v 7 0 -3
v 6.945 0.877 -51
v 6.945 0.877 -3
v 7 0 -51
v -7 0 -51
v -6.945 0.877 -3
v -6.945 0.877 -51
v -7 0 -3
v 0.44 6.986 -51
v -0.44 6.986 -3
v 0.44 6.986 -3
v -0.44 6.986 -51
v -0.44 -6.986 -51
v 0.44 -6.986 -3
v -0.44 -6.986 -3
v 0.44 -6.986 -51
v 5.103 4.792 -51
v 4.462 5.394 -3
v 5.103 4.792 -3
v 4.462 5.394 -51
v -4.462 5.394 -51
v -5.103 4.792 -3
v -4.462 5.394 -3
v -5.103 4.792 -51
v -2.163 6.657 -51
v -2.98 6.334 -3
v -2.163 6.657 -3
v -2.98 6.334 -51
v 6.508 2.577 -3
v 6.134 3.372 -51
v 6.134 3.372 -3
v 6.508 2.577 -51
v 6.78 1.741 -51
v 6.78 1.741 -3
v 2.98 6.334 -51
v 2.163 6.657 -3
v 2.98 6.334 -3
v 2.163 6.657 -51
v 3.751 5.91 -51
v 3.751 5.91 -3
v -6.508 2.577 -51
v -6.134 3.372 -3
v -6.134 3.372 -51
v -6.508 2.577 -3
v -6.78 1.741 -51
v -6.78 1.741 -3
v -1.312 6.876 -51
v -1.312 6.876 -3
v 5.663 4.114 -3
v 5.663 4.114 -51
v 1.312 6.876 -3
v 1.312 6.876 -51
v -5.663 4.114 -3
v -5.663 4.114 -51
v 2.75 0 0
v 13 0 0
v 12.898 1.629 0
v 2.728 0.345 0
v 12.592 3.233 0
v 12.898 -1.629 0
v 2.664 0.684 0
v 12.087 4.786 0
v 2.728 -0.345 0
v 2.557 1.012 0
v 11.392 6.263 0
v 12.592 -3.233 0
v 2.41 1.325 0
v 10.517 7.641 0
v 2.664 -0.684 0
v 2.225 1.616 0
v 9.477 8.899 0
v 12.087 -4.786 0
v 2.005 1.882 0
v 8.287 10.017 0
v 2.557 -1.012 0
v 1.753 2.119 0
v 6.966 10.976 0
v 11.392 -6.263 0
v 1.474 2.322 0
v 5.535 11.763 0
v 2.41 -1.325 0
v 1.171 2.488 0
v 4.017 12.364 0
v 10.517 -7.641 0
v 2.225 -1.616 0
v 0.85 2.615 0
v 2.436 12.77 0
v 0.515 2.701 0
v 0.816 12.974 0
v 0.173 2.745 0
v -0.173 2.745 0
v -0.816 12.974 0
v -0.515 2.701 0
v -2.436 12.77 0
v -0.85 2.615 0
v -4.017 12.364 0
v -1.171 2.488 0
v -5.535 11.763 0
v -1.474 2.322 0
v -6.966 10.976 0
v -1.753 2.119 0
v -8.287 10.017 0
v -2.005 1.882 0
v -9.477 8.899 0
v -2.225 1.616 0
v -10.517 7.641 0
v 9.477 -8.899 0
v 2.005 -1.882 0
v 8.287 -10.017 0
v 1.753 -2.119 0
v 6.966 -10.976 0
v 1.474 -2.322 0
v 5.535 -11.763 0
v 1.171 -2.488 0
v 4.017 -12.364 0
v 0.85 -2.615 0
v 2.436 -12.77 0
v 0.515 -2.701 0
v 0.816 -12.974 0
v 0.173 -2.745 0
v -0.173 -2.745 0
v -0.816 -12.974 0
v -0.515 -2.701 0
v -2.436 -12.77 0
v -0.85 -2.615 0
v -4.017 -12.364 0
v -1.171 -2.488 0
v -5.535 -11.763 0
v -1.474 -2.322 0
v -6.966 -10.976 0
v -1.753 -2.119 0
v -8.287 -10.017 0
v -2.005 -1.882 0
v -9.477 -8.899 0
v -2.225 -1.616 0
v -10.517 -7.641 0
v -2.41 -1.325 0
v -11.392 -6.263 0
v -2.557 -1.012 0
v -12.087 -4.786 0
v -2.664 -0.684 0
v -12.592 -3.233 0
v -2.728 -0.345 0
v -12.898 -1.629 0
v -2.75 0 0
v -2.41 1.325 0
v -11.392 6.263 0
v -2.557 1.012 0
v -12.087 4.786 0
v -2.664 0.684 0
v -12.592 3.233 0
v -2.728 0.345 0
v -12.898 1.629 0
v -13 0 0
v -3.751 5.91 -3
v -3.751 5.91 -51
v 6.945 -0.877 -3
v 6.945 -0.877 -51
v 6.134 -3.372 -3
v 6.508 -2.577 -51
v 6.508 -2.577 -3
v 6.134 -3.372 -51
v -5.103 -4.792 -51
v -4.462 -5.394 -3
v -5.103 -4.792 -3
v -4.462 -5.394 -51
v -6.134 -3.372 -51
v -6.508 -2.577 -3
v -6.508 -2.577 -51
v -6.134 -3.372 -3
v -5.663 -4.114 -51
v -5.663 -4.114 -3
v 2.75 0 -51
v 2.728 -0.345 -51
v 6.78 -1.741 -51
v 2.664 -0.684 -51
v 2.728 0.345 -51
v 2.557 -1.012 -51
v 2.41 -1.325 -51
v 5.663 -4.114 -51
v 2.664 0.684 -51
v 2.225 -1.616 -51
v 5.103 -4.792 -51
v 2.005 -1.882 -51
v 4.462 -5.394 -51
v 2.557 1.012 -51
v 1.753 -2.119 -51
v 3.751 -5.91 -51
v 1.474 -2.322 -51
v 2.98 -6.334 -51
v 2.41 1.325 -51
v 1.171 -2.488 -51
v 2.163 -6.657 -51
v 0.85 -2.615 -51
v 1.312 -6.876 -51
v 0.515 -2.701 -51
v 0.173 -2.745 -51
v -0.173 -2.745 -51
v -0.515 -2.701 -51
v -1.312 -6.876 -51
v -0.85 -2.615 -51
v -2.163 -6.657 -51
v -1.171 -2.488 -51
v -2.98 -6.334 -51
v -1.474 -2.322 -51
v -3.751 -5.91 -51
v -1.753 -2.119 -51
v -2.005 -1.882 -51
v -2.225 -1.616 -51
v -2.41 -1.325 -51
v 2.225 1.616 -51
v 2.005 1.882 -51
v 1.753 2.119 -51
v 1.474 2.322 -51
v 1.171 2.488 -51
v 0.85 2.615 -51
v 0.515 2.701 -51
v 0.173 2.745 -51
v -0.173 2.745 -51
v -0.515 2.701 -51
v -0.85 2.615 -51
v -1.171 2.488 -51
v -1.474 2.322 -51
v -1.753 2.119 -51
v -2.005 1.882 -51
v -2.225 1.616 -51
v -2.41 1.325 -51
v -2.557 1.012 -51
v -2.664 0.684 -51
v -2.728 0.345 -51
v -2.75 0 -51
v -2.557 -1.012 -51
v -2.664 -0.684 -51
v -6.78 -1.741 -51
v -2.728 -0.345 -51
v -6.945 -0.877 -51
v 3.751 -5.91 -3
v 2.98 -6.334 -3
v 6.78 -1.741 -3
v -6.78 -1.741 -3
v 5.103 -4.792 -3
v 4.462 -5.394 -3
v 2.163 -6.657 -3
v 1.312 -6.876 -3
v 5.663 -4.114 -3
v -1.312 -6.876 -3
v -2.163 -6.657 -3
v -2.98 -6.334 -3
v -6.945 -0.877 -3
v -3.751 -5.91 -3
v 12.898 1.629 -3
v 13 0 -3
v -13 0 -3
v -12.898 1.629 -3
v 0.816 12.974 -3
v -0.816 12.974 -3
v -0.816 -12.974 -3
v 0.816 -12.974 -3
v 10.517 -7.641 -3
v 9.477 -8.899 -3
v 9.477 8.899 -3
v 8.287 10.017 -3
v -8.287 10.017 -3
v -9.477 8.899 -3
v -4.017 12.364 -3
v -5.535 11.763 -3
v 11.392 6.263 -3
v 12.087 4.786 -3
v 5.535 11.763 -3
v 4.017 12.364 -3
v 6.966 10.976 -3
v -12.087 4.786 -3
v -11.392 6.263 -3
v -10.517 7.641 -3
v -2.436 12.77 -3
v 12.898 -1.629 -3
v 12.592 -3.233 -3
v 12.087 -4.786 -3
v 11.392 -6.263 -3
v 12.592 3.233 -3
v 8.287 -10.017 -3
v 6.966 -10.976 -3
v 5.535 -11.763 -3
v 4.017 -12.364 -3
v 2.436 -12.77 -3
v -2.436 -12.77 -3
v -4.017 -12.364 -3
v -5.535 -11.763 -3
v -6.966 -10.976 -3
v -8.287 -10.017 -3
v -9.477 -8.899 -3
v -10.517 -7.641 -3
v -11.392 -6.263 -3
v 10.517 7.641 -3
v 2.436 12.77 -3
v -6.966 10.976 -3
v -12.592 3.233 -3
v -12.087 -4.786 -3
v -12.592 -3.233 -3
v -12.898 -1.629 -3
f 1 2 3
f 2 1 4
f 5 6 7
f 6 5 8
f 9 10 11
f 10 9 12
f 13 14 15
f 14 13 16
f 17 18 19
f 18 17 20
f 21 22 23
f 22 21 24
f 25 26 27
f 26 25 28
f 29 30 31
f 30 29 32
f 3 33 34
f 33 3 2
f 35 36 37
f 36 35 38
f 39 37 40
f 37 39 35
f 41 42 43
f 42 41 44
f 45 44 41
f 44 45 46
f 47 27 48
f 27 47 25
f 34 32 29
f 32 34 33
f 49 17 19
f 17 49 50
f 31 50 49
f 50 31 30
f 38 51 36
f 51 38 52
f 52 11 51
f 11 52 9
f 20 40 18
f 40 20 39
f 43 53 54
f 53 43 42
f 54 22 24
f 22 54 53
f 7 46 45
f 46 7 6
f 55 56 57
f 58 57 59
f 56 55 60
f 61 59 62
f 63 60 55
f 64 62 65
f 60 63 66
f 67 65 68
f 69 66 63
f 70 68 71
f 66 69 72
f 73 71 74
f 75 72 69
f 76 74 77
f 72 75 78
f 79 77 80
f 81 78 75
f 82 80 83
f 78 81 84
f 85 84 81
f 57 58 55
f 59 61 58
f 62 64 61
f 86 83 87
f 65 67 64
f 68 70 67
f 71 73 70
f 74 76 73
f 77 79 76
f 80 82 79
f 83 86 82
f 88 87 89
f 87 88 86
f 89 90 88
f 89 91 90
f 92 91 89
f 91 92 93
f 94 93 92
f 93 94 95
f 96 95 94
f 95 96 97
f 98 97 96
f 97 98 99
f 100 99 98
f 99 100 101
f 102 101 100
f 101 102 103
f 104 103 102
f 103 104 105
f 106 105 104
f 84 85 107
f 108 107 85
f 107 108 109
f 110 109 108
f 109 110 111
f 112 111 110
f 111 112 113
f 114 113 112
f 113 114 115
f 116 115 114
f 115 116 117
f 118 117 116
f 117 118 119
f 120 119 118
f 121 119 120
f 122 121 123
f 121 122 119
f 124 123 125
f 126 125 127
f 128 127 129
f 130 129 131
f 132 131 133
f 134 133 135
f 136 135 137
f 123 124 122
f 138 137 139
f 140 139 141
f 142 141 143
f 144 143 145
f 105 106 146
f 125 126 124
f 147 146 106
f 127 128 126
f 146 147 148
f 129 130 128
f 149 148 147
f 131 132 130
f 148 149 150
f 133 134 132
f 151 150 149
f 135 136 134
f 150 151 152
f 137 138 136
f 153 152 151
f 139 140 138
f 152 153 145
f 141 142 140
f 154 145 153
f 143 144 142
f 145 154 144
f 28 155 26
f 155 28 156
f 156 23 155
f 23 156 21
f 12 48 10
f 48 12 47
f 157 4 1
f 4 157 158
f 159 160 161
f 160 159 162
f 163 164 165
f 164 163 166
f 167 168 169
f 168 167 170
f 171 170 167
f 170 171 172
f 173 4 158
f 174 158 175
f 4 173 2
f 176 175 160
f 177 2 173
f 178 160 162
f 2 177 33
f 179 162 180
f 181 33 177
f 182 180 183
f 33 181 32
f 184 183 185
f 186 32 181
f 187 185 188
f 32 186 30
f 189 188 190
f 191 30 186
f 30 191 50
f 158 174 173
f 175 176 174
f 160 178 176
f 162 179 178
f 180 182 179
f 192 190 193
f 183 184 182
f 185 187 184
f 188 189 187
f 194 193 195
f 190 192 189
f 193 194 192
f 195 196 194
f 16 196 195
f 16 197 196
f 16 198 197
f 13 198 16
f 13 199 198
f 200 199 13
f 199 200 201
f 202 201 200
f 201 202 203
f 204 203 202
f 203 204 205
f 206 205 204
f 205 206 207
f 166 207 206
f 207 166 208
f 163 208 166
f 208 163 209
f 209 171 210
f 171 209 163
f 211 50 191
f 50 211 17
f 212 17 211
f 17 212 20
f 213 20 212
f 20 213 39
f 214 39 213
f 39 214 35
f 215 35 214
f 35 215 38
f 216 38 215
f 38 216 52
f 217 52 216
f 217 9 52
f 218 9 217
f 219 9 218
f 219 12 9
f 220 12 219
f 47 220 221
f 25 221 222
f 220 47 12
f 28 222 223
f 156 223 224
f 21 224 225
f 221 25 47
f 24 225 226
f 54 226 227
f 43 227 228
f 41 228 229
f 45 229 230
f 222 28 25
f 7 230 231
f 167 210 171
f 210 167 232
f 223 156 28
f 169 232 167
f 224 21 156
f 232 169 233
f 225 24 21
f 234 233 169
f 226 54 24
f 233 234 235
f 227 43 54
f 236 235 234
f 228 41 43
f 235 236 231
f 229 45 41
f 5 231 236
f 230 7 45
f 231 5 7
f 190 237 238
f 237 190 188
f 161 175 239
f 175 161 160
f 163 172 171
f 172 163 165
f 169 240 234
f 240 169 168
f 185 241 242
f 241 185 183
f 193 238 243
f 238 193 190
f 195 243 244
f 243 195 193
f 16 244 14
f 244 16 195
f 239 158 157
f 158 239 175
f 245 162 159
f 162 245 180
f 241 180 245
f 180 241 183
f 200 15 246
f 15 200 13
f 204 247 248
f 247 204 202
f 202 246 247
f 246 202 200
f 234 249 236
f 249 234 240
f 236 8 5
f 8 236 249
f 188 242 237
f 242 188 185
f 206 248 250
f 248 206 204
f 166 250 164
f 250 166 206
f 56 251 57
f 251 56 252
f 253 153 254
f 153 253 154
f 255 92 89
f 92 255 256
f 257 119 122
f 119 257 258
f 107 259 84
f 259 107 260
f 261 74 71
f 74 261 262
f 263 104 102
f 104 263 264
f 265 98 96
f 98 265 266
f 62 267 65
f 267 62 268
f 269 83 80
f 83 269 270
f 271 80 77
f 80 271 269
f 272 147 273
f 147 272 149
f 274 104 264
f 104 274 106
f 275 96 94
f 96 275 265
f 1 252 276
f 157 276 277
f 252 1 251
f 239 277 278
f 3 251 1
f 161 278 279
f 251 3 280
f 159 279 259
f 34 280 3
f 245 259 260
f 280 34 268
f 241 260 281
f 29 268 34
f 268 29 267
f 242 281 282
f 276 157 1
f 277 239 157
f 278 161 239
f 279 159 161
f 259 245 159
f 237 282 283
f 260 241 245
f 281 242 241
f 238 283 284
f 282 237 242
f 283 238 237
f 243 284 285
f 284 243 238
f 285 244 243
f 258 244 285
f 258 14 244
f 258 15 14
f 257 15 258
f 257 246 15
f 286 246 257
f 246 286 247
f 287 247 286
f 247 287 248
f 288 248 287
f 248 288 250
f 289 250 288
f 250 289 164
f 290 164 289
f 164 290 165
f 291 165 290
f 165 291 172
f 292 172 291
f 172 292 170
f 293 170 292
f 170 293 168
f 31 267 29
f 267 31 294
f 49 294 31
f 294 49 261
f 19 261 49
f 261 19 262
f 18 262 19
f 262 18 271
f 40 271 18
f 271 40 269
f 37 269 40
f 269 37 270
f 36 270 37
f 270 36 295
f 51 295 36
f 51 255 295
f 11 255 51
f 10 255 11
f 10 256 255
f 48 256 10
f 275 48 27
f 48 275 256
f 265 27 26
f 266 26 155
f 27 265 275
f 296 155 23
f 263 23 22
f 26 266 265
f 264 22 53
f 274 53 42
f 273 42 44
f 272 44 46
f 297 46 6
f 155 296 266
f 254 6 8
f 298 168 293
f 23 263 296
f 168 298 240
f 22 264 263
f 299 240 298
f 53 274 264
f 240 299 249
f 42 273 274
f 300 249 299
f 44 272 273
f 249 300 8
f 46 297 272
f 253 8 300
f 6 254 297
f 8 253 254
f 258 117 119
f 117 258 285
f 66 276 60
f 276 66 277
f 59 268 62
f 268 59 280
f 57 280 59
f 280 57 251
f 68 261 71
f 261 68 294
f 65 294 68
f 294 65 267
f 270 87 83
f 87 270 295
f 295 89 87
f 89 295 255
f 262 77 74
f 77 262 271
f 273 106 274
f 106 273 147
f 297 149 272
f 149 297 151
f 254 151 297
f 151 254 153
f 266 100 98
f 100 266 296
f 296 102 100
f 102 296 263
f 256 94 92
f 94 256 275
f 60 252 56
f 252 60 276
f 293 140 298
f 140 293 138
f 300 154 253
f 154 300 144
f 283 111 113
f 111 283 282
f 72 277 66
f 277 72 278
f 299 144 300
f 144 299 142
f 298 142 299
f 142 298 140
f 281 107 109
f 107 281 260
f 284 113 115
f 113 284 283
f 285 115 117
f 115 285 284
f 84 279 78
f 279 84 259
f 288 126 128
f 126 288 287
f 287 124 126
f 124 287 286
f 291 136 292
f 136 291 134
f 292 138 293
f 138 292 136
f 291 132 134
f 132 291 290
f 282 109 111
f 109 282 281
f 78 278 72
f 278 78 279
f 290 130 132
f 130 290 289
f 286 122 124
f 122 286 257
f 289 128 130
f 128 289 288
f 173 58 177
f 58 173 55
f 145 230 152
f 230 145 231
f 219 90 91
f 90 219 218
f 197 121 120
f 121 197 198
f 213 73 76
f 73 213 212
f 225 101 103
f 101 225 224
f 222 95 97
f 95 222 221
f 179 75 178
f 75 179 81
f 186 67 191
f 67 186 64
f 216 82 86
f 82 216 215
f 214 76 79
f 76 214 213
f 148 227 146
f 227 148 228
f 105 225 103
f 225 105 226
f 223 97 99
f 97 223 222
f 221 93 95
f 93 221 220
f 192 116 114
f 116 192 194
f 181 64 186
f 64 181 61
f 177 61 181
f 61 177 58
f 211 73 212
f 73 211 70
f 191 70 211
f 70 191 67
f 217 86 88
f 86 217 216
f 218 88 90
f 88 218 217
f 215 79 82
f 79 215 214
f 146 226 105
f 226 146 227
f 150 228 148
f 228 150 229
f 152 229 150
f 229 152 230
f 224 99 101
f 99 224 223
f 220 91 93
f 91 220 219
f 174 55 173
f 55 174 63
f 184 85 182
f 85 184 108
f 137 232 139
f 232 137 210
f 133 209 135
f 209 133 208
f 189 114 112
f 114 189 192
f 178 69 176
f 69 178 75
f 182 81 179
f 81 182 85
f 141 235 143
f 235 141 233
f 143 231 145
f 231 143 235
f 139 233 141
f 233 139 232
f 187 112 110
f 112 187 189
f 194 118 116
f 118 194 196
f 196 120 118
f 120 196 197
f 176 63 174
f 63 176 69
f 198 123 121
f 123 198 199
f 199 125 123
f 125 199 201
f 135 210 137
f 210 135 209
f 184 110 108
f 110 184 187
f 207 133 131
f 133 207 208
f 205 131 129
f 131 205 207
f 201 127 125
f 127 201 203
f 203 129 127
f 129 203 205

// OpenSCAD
$fn = 50;


difference() {
	union() {
		translate(v = [0, 0, -51.0000000000]) {
			cylinder(h = 51, r = 7.0000000000);
		}
		translate(v = [0, 0, -3.0000000000]) {
			cylinder(h = 3, r = 13.0000000000);
		}
	}
	union() {
		#translate(v = [0, 0, -51]) {
			cylinder(h = 51, r = 2.7500000000);
		}
	}
}
